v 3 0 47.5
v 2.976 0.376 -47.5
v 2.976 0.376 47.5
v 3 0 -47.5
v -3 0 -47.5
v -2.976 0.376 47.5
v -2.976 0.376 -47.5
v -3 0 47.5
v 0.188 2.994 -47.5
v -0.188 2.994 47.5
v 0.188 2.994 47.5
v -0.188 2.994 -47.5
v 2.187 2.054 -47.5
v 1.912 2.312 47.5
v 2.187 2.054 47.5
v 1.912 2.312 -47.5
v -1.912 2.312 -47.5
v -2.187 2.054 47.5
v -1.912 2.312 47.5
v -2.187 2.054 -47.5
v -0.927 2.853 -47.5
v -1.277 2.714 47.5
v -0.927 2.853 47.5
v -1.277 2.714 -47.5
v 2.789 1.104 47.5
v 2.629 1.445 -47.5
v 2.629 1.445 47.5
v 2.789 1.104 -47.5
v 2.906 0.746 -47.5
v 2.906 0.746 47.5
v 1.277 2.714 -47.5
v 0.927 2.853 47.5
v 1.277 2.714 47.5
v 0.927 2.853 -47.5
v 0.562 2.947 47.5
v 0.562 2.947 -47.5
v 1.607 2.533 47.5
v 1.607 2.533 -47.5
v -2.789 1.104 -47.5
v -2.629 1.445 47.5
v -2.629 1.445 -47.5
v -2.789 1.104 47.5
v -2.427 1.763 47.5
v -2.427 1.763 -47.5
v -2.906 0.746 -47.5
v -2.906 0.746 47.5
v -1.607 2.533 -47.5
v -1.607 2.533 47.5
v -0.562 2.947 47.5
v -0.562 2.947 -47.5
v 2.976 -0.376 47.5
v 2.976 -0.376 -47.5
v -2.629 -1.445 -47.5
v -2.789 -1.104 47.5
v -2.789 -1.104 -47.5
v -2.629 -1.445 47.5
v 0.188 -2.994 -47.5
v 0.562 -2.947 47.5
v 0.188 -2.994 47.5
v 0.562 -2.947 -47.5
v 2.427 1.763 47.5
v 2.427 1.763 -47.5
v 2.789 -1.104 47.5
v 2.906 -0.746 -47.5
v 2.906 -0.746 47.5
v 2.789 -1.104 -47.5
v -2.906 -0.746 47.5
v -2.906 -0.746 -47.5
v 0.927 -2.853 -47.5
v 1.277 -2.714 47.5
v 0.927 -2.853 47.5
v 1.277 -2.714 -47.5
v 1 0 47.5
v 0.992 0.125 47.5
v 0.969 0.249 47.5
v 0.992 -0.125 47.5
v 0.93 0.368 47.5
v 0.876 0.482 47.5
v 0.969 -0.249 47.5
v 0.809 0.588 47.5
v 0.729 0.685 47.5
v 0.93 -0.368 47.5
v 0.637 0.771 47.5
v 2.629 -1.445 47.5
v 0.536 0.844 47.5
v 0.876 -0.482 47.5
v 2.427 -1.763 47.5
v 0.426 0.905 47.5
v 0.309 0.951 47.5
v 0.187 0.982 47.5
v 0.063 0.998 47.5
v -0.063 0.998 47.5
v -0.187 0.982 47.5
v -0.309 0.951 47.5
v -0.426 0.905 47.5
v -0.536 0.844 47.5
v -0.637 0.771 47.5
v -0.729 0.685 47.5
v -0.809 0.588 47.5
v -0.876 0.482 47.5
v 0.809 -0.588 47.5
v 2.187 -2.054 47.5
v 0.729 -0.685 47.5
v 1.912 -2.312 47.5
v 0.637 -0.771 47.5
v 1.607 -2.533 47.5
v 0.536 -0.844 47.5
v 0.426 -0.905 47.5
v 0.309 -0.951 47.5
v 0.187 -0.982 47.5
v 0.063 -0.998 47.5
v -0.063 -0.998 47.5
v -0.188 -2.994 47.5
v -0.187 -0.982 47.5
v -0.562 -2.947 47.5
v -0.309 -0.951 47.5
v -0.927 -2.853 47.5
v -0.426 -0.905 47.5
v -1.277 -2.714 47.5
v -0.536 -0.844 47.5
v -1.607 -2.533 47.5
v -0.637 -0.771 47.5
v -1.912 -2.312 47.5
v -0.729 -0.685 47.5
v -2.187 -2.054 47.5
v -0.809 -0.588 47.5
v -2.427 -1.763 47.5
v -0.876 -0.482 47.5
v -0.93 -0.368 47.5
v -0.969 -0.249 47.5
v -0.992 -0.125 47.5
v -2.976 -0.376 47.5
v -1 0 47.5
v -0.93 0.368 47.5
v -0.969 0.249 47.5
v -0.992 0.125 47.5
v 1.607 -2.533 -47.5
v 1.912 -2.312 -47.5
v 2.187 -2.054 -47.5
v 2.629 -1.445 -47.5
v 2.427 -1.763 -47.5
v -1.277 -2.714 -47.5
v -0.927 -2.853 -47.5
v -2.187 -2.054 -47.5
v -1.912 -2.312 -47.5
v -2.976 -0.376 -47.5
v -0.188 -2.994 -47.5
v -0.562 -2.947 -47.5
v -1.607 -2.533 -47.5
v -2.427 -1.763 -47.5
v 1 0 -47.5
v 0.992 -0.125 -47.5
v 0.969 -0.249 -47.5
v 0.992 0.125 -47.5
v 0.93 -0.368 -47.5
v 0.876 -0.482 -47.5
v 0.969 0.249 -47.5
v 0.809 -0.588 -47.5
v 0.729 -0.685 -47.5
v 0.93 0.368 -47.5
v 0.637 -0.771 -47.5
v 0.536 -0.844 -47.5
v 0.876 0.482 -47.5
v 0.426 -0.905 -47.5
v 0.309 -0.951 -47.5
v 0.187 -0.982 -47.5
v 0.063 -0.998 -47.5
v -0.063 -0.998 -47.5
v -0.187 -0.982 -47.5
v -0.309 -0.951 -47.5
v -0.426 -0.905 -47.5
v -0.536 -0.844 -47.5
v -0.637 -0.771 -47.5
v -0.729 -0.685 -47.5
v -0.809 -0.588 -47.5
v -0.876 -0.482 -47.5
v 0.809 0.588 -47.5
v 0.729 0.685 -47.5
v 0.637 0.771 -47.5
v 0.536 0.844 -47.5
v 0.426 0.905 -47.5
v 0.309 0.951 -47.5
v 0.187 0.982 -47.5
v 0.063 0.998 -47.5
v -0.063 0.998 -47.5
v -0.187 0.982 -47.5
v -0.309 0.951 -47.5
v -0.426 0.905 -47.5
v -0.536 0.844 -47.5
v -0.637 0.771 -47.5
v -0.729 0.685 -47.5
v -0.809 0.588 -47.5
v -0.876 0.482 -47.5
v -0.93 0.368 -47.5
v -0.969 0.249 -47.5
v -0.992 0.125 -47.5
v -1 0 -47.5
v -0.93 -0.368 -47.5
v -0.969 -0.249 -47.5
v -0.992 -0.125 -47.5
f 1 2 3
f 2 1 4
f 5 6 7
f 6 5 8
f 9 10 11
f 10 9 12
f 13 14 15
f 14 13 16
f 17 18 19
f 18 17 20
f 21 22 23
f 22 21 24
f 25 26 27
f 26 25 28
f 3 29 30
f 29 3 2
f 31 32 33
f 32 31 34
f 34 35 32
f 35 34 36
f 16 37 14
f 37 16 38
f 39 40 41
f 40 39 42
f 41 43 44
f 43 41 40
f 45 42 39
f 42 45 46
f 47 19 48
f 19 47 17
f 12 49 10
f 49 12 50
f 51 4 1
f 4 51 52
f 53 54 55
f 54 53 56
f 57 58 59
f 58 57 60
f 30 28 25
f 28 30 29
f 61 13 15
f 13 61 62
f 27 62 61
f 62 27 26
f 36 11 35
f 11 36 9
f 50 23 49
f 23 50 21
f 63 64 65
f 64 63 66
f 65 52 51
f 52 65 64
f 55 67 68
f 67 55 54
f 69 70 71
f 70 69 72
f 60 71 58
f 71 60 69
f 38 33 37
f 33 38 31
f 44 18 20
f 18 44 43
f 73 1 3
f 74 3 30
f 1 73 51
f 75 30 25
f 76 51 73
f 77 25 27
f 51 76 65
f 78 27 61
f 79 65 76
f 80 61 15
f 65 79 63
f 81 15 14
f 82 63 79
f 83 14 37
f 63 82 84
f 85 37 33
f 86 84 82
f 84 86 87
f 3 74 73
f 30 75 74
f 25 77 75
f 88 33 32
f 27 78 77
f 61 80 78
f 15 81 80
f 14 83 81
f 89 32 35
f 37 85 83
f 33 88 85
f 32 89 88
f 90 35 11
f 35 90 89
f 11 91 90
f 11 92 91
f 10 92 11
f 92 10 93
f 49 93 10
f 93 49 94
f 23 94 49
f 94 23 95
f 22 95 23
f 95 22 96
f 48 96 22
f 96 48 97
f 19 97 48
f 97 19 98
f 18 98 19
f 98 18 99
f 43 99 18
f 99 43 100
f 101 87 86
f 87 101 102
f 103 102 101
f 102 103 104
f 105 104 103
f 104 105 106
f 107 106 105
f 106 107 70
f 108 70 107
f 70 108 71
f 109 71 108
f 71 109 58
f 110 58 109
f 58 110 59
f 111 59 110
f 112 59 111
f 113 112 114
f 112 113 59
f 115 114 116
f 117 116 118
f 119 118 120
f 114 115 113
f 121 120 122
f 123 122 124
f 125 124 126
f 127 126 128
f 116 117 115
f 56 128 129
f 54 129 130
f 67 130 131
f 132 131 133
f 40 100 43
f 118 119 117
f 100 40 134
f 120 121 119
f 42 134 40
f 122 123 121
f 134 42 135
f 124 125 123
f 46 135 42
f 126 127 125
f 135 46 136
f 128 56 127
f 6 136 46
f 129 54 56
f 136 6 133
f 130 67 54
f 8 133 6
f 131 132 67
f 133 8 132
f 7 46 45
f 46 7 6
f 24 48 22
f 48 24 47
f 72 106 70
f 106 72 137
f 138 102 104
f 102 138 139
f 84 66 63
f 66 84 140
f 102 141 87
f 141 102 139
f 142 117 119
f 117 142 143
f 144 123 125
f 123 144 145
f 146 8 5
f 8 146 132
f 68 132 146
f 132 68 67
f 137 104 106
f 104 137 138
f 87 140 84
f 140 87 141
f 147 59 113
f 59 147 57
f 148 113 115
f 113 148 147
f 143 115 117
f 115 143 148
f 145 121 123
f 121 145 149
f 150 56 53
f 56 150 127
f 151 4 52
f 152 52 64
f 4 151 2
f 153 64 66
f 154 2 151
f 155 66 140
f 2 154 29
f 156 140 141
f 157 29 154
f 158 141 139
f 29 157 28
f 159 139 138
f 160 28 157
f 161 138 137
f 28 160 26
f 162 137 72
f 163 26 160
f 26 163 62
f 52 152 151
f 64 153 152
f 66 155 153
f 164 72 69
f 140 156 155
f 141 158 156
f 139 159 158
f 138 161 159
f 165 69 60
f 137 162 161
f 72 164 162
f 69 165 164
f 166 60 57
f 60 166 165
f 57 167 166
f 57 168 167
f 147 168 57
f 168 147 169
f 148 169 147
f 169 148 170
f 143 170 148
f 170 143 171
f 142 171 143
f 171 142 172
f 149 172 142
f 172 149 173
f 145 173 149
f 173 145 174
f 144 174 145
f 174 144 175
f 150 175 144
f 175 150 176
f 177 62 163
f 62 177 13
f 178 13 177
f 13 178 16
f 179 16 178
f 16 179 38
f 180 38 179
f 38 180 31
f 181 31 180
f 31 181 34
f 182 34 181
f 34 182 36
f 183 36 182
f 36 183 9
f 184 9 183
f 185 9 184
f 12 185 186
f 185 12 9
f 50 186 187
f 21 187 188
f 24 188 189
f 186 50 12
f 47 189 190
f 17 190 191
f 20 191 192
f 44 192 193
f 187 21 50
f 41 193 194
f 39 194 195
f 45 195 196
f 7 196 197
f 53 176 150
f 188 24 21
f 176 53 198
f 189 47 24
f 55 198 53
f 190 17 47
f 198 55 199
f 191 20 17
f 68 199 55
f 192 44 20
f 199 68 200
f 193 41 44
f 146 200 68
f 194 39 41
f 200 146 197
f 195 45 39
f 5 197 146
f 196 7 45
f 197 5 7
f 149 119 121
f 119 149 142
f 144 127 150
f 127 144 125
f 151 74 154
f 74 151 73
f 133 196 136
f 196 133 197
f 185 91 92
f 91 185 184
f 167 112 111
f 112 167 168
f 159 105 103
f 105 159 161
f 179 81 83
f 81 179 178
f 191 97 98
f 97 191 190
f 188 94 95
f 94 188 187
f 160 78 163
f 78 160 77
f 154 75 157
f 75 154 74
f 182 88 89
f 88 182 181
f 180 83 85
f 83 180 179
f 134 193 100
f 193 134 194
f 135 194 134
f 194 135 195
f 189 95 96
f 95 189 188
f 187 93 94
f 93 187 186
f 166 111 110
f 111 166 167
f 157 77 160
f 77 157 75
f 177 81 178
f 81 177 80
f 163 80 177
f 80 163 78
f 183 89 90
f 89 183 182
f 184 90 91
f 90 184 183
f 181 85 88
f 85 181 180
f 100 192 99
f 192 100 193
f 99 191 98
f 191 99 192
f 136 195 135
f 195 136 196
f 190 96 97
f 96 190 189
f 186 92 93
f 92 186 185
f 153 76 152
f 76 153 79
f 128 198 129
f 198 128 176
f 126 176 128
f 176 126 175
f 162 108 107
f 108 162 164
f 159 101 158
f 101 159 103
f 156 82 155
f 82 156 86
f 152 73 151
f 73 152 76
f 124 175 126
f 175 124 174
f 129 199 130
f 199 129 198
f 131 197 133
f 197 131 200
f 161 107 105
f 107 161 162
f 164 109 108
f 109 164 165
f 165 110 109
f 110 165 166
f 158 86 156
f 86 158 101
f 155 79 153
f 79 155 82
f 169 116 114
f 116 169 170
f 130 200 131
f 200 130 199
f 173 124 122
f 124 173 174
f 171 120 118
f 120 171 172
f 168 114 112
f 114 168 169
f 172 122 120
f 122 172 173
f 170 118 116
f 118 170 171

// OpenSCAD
$fn = 50;


difference() {
	union() {
		translate(v = [0, 0, -47.5000000000]) {
			cylinder(h = 95, r = 3.0000000000);
		}
	}
	union() {
		translate(v = [0, 0, -100.0000000000]) {
			cylinder(h = 200, r = 1.0000000000);
		}
	}
}
